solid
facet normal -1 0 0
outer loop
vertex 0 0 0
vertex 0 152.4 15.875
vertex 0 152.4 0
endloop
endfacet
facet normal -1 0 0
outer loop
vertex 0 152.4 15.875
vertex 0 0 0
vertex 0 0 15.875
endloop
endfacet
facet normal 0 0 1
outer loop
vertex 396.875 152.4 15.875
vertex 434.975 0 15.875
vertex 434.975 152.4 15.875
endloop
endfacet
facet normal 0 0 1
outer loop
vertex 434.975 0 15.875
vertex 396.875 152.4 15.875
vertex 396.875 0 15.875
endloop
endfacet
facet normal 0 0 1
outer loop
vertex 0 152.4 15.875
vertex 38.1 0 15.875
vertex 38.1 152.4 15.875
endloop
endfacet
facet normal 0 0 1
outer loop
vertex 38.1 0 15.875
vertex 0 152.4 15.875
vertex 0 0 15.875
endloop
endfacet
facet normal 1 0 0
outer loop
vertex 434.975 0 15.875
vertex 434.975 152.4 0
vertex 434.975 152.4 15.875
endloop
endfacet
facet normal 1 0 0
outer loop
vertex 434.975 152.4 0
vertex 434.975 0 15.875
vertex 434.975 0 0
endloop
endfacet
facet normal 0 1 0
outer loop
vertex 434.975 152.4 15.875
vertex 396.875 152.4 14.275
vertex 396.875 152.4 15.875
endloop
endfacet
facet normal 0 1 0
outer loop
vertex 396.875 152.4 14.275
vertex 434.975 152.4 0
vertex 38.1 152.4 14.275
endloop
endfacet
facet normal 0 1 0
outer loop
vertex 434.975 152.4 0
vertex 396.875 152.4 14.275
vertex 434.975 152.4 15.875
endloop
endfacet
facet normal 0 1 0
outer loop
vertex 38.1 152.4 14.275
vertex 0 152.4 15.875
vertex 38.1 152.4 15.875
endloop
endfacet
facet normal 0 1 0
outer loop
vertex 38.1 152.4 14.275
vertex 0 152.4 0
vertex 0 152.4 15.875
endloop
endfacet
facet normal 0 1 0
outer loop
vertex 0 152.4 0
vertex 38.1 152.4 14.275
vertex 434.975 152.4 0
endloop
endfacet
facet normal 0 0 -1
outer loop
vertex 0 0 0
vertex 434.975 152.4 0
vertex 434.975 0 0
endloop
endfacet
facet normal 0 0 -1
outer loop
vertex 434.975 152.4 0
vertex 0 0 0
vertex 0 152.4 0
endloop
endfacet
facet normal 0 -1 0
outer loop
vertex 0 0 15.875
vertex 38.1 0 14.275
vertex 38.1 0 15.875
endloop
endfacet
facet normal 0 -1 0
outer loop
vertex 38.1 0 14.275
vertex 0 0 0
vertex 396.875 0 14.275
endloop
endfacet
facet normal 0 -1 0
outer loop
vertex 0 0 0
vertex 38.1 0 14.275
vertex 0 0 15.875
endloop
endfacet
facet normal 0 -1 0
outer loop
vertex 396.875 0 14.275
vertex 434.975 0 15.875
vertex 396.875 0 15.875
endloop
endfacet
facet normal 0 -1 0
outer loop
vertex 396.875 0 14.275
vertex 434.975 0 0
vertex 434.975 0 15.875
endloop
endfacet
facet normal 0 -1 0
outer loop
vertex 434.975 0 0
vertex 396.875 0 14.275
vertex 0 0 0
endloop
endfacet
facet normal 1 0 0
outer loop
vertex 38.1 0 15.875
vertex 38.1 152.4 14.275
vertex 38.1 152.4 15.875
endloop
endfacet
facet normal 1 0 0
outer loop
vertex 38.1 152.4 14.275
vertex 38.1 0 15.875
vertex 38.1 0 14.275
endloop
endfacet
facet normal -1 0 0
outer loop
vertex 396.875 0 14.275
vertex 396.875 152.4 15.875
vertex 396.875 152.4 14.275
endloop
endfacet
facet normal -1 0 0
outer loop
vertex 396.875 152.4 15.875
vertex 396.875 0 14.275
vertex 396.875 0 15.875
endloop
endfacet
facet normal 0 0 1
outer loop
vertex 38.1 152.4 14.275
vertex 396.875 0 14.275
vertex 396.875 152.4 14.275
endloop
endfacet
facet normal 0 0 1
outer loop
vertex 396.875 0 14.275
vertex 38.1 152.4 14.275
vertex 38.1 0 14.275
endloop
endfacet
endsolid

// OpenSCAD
inch = 25.4; // mm
zFite   = 0.1; // mm

// Dimensions
wood_x_dim = (17 +(1/8)) * inch;
wood_y_dim = 6 * inch;
wood_z_dim = (5/8) * inch;

edge_x = 1.5 * inch; // to avoid the screws
edge_y = 0; // no gap
rec_x =  wood_x_dim - edge_x*2;
rec_y = wood_y_dim - edge_y*2;
rec_z = 1.6;
// Create the main wood block
difference() {
    cube([wood_x_dim, wood_y_dim, wood_z_dim]);

    // Remove the square
    translate([edge_x, edge_y, wood_z_dim - rec_z])
    color("red")
        cube([rec_x, rec_y, rec_z + zFite]);
}
